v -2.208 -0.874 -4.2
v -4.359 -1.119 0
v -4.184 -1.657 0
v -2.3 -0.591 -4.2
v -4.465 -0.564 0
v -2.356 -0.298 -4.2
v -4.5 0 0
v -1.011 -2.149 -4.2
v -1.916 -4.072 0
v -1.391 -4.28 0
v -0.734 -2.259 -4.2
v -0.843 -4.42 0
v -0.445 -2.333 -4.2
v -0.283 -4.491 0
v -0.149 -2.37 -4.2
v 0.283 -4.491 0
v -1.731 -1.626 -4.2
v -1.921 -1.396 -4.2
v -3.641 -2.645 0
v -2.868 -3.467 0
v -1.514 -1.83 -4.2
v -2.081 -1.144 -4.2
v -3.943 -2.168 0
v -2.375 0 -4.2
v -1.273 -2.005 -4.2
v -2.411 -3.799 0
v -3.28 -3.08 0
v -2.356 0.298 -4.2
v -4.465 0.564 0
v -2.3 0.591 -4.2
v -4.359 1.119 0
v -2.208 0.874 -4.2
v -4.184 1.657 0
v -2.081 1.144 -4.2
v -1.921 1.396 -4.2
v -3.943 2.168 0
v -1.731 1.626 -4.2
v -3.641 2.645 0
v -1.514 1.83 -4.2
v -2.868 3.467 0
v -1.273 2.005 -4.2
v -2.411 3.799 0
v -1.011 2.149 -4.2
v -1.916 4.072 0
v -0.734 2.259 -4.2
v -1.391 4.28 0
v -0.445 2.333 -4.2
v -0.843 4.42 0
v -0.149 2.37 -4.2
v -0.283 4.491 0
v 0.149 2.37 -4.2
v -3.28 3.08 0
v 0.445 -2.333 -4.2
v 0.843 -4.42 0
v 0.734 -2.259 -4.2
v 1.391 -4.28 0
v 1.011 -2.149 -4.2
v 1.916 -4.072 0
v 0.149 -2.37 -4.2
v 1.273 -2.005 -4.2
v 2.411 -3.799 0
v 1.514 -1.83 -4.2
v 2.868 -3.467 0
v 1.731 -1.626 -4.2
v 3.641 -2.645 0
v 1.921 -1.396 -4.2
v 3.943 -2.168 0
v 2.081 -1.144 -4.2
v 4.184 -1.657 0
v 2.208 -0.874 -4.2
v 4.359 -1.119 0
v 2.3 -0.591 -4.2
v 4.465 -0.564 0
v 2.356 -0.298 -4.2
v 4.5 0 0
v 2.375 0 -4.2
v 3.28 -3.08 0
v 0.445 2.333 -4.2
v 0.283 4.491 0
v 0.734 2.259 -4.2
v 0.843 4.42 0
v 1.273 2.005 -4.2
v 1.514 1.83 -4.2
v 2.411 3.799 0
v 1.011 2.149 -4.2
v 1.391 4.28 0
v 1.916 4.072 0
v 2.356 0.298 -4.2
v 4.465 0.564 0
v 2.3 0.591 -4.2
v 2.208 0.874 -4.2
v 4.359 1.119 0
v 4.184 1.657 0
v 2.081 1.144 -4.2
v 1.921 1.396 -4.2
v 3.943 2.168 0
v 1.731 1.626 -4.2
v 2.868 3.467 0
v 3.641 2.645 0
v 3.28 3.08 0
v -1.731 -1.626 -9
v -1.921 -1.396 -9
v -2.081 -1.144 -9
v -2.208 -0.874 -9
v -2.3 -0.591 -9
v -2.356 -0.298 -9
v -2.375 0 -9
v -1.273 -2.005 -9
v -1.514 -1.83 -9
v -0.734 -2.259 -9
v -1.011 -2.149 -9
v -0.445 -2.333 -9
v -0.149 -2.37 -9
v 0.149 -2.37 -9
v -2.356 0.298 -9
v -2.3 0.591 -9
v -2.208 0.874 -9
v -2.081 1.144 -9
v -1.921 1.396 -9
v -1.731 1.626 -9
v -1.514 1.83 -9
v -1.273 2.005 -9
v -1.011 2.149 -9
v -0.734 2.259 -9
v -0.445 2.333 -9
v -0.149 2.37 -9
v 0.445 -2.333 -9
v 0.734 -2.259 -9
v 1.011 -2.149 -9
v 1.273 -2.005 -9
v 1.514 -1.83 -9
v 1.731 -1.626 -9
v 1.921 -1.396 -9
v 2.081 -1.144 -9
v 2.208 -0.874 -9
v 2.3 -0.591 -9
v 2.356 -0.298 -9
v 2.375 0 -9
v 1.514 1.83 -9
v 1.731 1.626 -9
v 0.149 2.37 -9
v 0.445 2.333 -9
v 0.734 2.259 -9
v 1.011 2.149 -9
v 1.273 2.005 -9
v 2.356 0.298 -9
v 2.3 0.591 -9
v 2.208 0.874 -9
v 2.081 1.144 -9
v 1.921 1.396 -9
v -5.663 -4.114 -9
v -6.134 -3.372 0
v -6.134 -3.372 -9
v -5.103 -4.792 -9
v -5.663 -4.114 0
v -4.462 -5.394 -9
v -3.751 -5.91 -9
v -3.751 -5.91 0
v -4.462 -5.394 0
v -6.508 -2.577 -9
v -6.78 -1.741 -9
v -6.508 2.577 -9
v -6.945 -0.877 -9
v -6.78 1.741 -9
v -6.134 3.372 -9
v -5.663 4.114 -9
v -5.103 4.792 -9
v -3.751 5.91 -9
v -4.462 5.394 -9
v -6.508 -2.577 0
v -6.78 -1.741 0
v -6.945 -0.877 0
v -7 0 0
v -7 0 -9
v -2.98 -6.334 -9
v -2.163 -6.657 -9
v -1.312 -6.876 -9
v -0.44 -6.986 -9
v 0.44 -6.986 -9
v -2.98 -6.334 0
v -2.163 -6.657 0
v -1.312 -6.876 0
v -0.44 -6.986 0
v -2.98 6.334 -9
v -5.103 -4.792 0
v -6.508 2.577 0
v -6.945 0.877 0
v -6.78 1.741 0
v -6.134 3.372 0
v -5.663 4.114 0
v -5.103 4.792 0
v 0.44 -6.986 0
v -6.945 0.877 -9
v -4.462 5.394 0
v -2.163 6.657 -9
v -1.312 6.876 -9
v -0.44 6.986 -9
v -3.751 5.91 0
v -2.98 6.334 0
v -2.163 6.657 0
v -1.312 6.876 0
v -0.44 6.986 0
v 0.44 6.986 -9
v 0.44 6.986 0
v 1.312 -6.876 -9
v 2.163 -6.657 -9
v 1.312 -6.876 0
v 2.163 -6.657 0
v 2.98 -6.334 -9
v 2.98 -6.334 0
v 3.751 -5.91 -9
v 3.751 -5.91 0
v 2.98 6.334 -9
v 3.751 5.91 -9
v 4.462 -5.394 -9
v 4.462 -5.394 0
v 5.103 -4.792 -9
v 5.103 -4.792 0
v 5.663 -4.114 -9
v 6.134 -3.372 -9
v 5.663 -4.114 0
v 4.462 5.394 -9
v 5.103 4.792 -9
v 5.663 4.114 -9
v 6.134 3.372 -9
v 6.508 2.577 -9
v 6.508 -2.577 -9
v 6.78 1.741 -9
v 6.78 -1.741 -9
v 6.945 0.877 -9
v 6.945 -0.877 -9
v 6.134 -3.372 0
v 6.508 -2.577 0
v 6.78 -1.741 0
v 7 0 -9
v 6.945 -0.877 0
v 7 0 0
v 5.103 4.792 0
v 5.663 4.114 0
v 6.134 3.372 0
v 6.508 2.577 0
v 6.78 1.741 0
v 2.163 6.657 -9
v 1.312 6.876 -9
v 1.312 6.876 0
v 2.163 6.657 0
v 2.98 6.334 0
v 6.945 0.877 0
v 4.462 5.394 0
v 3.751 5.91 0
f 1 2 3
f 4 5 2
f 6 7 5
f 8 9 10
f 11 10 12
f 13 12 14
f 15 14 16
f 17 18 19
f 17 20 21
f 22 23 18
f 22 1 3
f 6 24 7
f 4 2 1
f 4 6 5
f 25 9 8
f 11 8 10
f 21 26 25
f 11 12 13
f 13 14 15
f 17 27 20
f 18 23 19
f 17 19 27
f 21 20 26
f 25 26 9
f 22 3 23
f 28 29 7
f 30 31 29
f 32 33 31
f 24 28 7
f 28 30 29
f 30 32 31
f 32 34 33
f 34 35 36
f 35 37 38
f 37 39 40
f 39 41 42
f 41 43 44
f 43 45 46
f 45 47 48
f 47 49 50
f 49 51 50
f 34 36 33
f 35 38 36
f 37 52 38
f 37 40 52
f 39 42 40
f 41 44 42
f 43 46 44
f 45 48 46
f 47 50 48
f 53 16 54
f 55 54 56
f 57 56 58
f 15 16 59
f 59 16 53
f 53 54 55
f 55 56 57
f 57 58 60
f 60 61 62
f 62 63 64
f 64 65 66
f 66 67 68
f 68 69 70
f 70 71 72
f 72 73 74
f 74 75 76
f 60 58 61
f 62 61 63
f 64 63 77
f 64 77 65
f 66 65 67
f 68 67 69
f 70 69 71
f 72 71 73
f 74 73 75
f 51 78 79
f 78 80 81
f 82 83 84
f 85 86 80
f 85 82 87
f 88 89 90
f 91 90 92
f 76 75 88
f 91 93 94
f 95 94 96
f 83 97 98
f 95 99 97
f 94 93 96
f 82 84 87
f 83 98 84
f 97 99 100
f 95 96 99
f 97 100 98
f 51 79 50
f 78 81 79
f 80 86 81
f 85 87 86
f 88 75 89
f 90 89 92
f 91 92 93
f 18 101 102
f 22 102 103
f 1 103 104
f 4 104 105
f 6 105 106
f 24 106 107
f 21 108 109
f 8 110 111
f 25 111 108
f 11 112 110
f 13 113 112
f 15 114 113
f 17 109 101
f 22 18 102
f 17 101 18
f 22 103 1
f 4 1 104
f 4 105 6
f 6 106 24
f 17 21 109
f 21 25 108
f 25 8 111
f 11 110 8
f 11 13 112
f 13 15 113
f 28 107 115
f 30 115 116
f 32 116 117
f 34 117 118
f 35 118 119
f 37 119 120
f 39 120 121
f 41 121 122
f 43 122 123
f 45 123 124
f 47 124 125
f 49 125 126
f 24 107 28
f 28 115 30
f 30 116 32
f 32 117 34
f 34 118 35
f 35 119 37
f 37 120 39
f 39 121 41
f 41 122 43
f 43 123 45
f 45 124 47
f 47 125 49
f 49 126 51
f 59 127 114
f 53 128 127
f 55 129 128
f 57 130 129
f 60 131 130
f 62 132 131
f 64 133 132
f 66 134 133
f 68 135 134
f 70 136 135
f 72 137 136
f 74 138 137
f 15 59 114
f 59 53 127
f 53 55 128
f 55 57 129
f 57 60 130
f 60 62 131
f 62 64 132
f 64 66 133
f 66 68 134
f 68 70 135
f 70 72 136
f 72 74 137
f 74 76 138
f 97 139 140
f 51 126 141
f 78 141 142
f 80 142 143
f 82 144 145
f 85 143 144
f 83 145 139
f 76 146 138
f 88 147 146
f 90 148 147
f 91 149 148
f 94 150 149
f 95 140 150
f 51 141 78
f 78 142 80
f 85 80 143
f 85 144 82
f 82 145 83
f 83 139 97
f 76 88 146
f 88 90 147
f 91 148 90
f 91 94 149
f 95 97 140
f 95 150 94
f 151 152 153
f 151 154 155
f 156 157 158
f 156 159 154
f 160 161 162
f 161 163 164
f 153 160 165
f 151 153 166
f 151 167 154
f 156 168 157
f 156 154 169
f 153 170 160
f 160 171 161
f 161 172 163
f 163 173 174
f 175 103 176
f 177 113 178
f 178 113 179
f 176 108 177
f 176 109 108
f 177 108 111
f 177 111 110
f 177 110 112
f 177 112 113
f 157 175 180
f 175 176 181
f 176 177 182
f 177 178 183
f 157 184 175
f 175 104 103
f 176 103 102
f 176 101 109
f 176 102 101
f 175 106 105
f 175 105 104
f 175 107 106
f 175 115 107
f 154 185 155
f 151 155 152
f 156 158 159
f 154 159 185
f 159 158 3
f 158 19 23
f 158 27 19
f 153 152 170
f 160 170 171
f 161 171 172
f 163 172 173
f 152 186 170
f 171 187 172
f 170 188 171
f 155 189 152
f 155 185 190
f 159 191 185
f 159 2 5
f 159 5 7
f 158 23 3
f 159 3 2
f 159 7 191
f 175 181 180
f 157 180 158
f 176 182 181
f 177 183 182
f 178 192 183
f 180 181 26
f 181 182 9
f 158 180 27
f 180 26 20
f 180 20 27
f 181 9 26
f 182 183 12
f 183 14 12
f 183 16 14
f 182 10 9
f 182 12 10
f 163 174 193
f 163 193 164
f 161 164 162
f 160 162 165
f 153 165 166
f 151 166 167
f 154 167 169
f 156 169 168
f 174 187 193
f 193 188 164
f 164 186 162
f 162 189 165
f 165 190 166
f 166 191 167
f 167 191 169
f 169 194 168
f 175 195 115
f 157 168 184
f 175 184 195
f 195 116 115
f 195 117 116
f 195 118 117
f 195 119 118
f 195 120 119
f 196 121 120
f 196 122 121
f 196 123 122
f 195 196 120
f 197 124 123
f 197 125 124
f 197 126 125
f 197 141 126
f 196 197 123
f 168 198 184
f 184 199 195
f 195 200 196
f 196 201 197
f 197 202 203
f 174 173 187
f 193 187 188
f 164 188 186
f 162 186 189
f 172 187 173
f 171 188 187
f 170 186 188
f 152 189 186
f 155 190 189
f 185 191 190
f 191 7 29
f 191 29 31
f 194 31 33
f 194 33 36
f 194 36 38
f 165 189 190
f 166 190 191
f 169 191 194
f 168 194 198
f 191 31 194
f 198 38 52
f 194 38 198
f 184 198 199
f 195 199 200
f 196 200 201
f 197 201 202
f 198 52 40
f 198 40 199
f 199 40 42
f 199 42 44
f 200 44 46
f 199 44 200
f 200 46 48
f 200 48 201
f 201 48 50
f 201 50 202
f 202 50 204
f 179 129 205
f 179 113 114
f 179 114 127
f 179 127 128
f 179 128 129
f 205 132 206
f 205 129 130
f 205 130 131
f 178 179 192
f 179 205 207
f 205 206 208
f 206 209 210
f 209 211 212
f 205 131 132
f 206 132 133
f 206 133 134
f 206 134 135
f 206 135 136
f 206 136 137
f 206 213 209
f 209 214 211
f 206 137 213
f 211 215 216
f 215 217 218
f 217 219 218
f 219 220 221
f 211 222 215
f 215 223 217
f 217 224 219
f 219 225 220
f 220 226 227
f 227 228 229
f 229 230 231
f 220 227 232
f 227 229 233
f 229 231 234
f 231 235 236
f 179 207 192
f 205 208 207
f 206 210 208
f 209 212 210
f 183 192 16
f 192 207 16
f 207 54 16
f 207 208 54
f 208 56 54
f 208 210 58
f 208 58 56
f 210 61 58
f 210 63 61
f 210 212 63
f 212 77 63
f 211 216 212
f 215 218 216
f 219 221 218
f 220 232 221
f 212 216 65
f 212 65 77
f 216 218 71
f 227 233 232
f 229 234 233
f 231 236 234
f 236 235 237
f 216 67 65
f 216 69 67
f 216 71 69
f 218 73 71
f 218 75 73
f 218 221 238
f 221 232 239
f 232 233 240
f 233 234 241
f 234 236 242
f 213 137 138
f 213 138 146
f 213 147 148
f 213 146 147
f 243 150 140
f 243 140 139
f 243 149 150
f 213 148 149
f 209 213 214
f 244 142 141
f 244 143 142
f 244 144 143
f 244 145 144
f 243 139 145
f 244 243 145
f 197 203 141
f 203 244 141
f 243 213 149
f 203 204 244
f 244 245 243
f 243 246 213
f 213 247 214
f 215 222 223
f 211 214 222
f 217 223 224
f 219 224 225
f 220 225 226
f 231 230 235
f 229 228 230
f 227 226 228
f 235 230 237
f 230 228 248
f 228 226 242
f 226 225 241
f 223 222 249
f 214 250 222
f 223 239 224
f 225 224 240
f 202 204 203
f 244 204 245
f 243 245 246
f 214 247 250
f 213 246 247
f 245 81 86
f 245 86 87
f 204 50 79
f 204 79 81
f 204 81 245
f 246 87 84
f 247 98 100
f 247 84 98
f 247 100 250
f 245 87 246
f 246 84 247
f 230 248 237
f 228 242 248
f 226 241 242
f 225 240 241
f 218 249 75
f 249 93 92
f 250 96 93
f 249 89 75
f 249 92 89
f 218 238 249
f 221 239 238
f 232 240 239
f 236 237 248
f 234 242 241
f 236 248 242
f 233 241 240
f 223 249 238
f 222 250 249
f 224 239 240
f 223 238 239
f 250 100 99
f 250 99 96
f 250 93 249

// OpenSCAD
$fn = 50;

difference() {
	union() {
		translate(v = [0, 0, -9.0]) {
			cylinder(h = 9, r = 7.0);
		}
	}
	union() {
		translate(v = [0, 0, 0]) {
			rotate(a = [0, 0, 0]) {
				difference() {
					union() {
						translate(v = [0, 0, -12.0]) {
							cylinder(h = 12, r = 2.25);
						}
						translate(v = [0, 0, -4.2]) {
							cylinder(h = 4.2, r1 = 2.375, r2 = 4.5);
						}
						translate(v = [0, 0, -12.0]) {
							cylinder(h = 12, r = 2.375);
						}
						translate(v = [0, 0, -12.0]) {
							cylinder(h = 12, r = 2.25);
						}
					}
					union();
				}
			}
		}
	}
}
